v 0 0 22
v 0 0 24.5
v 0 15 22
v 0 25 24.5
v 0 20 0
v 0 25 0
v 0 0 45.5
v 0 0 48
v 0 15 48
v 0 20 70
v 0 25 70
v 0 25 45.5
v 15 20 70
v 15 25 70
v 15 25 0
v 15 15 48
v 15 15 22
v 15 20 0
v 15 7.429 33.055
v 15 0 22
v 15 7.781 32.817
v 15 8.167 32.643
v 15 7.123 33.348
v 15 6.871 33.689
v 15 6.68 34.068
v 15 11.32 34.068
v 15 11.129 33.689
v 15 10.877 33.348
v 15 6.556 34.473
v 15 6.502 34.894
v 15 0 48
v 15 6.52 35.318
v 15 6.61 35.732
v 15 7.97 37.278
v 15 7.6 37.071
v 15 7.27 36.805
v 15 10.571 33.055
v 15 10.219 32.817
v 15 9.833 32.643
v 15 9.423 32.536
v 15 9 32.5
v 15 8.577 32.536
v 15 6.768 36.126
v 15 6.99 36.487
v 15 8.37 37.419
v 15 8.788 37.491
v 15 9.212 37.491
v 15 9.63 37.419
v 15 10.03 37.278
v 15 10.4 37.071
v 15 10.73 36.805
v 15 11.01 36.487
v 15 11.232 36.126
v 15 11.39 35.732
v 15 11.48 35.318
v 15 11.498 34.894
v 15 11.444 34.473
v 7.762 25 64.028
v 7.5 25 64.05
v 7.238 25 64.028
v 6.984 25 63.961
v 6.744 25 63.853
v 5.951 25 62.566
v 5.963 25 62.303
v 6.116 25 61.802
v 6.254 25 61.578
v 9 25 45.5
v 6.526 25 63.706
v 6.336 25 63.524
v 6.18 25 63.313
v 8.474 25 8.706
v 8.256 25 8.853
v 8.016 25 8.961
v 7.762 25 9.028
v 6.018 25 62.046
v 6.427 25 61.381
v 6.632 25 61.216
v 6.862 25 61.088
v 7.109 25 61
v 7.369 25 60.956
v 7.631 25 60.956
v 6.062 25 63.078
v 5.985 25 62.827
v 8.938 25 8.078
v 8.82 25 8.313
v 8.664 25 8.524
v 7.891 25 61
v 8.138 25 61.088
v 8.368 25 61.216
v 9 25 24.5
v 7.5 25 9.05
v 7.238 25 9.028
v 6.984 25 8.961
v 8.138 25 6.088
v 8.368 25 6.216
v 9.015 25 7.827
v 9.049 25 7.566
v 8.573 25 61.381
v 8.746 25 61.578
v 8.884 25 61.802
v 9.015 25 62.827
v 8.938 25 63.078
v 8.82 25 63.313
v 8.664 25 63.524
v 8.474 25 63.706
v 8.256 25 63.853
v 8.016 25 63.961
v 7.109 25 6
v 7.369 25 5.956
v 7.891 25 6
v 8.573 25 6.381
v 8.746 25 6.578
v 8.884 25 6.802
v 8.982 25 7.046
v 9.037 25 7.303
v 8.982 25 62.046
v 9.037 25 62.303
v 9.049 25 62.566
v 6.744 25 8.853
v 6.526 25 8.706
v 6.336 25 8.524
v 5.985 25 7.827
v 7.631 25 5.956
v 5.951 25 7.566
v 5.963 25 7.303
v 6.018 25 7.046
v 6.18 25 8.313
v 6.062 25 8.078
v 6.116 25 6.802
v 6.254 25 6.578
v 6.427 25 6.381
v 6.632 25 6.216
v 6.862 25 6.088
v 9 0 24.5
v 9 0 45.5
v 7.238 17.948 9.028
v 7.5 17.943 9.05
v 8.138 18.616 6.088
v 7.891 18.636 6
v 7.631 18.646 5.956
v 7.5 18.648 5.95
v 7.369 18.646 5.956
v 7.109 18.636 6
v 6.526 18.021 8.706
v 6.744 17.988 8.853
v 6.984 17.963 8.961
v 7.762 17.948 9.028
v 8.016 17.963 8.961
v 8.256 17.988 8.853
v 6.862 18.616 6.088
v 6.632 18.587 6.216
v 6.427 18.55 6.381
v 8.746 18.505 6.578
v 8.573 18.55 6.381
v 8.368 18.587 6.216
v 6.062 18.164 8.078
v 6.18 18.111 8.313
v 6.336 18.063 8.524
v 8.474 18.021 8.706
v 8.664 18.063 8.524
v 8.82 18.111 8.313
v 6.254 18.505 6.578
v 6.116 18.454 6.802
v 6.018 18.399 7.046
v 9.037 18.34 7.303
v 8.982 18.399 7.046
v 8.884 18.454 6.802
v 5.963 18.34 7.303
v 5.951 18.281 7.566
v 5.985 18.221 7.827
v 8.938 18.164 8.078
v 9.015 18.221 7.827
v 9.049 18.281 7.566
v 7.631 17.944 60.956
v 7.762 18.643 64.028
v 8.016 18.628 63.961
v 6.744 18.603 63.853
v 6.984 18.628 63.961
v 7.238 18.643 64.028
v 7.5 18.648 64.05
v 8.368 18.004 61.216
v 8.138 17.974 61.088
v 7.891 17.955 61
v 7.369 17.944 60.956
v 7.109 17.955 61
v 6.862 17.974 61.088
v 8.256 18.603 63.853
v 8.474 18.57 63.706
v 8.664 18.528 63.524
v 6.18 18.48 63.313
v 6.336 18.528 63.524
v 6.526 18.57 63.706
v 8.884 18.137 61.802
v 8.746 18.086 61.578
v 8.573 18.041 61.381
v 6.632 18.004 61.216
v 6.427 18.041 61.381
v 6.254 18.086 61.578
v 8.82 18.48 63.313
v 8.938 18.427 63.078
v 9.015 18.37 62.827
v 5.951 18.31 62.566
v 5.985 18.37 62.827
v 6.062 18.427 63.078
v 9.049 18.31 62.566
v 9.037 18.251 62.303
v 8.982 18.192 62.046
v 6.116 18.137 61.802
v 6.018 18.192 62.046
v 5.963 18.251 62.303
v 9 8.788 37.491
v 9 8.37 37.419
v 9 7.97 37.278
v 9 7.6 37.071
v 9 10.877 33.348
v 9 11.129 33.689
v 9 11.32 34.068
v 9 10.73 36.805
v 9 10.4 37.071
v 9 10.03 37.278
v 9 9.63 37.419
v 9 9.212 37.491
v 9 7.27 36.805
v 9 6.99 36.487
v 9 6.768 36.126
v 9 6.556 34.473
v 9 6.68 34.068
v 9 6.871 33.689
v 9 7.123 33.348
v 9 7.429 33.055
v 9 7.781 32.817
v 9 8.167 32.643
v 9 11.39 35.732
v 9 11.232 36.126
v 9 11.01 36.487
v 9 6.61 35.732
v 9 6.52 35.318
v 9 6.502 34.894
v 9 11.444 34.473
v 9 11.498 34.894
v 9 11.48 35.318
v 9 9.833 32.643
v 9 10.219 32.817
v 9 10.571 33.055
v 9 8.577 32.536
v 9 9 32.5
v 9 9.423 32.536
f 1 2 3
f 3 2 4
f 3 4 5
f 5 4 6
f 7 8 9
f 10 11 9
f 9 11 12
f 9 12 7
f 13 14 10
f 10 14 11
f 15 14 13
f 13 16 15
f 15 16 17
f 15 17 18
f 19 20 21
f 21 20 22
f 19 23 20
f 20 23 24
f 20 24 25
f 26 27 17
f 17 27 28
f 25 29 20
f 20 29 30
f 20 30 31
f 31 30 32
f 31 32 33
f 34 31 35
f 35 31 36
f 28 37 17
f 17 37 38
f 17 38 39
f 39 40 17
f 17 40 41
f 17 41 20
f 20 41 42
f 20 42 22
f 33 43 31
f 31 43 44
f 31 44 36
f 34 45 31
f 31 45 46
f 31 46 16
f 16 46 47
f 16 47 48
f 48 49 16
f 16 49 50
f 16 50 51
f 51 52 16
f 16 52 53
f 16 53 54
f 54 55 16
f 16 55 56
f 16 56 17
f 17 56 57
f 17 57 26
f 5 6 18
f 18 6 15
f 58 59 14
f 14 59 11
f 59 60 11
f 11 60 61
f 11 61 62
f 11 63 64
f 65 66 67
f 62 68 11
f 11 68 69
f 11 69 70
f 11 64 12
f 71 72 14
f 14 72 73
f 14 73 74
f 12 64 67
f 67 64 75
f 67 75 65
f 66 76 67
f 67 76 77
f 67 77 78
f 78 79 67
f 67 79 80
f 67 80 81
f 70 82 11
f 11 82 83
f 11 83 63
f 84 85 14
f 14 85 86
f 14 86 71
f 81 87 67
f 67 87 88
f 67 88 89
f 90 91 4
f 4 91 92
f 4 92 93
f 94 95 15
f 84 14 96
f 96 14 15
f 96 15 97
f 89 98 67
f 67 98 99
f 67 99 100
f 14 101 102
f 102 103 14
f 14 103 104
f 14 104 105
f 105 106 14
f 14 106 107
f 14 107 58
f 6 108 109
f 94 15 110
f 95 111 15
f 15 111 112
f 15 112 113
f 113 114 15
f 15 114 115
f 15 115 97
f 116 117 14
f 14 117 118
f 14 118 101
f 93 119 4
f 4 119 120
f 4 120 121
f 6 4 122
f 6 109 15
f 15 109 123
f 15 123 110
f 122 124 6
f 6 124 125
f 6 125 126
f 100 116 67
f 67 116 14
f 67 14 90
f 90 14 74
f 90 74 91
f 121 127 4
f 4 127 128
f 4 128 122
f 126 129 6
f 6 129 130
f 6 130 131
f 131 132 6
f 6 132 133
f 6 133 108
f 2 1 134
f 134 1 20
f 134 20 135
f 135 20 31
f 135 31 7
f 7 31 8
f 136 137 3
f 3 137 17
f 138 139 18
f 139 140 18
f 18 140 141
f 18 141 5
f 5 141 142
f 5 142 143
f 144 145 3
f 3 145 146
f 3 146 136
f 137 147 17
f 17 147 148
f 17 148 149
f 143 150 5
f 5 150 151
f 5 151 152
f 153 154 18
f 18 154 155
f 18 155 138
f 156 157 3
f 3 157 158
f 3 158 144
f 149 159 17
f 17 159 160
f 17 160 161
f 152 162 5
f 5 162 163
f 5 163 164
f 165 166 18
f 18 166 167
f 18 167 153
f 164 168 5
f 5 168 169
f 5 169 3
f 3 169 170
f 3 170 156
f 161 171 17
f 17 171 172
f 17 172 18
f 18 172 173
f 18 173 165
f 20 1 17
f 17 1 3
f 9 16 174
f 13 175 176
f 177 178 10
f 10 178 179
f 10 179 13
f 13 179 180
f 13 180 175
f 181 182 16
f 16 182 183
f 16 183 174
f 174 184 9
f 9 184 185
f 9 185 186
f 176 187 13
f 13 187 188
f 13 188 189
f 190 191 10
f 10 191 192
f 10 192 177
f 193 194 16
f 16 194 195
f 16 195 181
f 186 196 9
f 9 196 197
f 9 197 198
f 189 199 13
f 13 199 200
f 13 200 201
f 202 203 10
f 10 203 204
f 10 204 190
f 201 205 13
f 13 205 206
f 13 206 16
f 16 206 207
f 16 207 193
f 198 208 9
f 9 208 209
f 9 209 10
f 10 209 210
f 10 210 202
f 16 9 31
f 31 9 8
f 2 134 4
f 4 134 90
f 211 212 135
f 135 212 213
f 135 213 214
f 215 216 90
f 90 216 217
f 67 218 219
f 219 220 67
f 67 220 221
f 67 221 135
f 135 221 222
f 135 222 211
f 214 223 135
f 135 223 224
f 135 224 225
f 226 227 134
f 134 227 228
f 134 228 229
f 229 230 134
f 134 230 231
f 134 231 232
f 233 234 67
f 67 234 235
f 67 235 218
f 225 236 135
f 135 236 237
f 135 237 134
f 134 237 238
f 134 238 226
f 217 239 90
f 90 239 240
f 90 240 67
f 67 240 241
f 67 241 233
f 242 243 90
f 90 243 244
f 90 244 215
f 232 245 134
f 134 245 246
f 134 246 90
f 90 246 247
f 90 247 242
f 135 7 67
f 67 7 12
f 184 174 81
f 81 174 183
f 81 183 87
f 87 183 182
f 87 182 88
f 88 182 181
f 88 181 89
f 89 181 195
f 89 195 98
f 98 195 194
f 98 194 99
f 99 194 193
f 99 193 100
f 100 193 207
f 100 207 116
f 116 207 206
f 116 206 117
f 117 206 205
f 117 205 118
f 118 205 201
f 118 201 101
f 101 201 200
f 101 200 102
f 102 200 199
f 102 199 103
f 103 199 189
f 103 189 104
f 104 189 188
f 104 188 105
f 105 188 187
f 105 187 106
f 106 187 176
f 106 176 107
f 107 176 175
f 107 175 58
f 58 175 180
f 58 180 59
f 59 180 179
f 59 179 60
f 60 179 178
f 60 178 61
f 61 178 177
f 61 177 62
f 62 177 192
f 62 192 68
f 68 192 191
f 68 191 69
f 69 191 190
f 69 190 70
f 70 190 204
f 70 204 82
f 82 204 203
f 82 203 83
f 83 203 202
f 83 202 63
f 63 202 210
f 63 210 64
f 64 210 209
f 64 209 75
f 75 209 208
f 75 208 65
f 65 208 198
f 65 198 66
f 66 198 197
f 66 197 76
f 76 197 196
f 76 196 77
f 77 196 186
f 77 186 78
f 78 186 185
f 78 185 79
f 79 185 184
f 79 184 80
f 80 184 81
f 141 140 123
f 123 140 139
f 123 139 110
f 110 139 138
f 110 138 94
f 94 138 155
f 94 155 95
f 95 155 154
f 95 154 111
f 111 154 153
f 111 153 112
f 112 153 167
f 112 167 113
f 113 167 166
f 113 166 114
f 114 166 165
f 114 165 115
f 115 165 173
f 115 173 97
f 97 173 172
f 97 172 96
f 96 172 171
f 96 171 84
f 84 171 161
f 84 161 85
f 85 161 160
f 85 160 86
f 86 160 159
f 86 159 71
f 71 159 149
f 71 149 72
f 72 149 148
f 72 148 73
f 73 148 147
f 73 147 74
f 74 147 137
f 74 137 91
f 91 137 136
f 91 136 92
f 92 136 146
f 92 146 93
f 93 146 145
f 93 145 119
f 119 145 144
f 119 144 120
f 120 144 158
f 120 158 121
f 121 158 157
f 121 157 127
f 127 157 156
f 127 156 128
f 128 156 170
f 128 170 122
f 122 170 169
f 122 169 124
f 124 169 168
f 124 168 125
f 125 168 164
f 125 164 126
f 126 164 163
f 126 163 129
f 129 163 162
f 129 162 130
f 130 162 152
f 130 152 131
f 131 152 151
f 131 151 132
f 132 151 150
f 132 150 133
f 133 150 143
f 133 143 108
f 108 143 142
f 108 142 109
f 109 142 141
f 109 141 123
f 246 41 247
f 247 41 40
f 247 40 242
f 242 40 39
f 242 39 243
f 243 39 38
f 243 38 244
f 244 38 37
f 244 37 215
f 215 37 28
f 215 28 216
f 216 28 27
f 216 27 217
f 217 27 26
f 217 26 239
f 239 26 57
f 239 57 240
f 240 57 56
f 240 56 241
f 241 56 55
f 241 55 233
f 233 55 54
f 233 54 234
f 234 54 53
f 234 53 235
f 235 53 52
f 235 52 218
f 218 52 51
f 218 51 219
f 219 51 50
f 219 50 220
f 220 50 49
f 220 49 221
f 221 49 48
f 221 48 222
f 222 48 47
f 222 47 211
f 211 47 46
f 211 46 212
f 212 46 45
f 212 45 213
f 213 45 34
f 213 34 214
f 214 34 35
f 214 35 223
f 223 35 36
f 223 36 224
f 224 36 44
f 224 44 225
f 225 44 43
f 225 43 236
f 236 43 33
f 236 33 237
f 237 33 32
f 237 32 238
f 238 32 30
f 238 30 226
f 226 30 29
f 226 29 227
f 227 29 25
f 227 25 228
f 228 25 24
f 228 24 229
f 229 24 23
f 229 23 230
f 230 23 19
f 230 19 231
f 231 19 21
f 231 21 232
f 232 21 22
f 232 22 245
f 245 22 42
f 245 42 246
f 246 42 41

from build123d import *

# Parameters (mm, degrees)
SKETCH_1_W          = 15
SKETCH_1_H          = 70
EXTRUDE_1_DEPTH     = 25
CUT_EXTRUDE_1_DEPTH = 40
SKETCH_3_W          = 9
SKETCH_3_H          = 21
CUT_EXTRUDE_2_DEPTH = 76.828754441
SKETCH_5_R          = 1.55
CUT_EXTRUDE_3_DEPTH = 76.828754441
SKETCH_6_R          = 2.5
CUT_EXTRUDE_4_DEPTH = 76.828754441


with BuildPart() as part:
    # 草图1 → 凸台-拉伸1 (new body)
    with BuildSketch(Plane(origin=(0, 0, 0), x_dir=(1, 0, 0), z_dir=(0, 1, 0))):
        with Locations((7.5, -35)):
            Rectangle(SKETCH_1_W, SKETCH_1_H)
    extrude(amount=EXTRUDE_1_DEPTH)

    # 草图2 → 切除-拉伸1 (cut)
    with BuildSketch(Plane(origin=(15, 0, 0), x_dir=(0, 0, -1), z_dir=(1, 0, 0))):
        Polygon((-70, 20), (-48, 15), (-48, 0), (-70, 0), align=None)
        Polygon((0, 20), (-22, 15), (-22, 0), (0, 0), align=None)
    extrude(amount=-CUT_EXTRUDE_1_DEPTH, mode=Mode.SUBTRACT)

    # 草图3 → 切除-拉伸2 (cut, through all)
    with BuildSketch(Plane(origin=(0, 25, 0), x_dir=(1, 0, 0), z_dir=(0, 1, 0))):
        with Locations((4.5, -35)):
            Rectangle(SKETCH_3_W, SKETCH_3_H)
    extrude(amount=-CUT_EXTRUDE_2_DEPTH, mode=Mode.SUBTRACT)

    # 草图5 → 切除-拉伸3 (cut, through all)
    with BuildSketch(Plane(origin=(0, 25, 0), x_dir=(1, 0, 0), z_dir=(0, 1, 0))):
        with Locations(Location((7.5, -7.5, 0), (0, 0, 270))):
            Circle(SKETCH_5_R)
        with Locations(Location((7.5, -62.5, 0), (0, 0, 270))):
            Circle(SKETCH_5_R)
    extrude(amount=-CUT_EXTRUDE_3_DEPTH, mode=Mode.SUBTRACT)

    # 草图6 → 切除-拉伸4 (cut, through all)
    with BuildSketch(Plane(origin=(15, 0, 0), x_dir=(0, 0, -1), z_dir=(1, 0, 0))):
        with Locations((-35, 9)):
            Circle(SKETCH_6_R)
    extrude(amount=-CUT_EXTRUDE_4_DEPTH, mode=Mode.SUBTRACT)


solid = part.part
